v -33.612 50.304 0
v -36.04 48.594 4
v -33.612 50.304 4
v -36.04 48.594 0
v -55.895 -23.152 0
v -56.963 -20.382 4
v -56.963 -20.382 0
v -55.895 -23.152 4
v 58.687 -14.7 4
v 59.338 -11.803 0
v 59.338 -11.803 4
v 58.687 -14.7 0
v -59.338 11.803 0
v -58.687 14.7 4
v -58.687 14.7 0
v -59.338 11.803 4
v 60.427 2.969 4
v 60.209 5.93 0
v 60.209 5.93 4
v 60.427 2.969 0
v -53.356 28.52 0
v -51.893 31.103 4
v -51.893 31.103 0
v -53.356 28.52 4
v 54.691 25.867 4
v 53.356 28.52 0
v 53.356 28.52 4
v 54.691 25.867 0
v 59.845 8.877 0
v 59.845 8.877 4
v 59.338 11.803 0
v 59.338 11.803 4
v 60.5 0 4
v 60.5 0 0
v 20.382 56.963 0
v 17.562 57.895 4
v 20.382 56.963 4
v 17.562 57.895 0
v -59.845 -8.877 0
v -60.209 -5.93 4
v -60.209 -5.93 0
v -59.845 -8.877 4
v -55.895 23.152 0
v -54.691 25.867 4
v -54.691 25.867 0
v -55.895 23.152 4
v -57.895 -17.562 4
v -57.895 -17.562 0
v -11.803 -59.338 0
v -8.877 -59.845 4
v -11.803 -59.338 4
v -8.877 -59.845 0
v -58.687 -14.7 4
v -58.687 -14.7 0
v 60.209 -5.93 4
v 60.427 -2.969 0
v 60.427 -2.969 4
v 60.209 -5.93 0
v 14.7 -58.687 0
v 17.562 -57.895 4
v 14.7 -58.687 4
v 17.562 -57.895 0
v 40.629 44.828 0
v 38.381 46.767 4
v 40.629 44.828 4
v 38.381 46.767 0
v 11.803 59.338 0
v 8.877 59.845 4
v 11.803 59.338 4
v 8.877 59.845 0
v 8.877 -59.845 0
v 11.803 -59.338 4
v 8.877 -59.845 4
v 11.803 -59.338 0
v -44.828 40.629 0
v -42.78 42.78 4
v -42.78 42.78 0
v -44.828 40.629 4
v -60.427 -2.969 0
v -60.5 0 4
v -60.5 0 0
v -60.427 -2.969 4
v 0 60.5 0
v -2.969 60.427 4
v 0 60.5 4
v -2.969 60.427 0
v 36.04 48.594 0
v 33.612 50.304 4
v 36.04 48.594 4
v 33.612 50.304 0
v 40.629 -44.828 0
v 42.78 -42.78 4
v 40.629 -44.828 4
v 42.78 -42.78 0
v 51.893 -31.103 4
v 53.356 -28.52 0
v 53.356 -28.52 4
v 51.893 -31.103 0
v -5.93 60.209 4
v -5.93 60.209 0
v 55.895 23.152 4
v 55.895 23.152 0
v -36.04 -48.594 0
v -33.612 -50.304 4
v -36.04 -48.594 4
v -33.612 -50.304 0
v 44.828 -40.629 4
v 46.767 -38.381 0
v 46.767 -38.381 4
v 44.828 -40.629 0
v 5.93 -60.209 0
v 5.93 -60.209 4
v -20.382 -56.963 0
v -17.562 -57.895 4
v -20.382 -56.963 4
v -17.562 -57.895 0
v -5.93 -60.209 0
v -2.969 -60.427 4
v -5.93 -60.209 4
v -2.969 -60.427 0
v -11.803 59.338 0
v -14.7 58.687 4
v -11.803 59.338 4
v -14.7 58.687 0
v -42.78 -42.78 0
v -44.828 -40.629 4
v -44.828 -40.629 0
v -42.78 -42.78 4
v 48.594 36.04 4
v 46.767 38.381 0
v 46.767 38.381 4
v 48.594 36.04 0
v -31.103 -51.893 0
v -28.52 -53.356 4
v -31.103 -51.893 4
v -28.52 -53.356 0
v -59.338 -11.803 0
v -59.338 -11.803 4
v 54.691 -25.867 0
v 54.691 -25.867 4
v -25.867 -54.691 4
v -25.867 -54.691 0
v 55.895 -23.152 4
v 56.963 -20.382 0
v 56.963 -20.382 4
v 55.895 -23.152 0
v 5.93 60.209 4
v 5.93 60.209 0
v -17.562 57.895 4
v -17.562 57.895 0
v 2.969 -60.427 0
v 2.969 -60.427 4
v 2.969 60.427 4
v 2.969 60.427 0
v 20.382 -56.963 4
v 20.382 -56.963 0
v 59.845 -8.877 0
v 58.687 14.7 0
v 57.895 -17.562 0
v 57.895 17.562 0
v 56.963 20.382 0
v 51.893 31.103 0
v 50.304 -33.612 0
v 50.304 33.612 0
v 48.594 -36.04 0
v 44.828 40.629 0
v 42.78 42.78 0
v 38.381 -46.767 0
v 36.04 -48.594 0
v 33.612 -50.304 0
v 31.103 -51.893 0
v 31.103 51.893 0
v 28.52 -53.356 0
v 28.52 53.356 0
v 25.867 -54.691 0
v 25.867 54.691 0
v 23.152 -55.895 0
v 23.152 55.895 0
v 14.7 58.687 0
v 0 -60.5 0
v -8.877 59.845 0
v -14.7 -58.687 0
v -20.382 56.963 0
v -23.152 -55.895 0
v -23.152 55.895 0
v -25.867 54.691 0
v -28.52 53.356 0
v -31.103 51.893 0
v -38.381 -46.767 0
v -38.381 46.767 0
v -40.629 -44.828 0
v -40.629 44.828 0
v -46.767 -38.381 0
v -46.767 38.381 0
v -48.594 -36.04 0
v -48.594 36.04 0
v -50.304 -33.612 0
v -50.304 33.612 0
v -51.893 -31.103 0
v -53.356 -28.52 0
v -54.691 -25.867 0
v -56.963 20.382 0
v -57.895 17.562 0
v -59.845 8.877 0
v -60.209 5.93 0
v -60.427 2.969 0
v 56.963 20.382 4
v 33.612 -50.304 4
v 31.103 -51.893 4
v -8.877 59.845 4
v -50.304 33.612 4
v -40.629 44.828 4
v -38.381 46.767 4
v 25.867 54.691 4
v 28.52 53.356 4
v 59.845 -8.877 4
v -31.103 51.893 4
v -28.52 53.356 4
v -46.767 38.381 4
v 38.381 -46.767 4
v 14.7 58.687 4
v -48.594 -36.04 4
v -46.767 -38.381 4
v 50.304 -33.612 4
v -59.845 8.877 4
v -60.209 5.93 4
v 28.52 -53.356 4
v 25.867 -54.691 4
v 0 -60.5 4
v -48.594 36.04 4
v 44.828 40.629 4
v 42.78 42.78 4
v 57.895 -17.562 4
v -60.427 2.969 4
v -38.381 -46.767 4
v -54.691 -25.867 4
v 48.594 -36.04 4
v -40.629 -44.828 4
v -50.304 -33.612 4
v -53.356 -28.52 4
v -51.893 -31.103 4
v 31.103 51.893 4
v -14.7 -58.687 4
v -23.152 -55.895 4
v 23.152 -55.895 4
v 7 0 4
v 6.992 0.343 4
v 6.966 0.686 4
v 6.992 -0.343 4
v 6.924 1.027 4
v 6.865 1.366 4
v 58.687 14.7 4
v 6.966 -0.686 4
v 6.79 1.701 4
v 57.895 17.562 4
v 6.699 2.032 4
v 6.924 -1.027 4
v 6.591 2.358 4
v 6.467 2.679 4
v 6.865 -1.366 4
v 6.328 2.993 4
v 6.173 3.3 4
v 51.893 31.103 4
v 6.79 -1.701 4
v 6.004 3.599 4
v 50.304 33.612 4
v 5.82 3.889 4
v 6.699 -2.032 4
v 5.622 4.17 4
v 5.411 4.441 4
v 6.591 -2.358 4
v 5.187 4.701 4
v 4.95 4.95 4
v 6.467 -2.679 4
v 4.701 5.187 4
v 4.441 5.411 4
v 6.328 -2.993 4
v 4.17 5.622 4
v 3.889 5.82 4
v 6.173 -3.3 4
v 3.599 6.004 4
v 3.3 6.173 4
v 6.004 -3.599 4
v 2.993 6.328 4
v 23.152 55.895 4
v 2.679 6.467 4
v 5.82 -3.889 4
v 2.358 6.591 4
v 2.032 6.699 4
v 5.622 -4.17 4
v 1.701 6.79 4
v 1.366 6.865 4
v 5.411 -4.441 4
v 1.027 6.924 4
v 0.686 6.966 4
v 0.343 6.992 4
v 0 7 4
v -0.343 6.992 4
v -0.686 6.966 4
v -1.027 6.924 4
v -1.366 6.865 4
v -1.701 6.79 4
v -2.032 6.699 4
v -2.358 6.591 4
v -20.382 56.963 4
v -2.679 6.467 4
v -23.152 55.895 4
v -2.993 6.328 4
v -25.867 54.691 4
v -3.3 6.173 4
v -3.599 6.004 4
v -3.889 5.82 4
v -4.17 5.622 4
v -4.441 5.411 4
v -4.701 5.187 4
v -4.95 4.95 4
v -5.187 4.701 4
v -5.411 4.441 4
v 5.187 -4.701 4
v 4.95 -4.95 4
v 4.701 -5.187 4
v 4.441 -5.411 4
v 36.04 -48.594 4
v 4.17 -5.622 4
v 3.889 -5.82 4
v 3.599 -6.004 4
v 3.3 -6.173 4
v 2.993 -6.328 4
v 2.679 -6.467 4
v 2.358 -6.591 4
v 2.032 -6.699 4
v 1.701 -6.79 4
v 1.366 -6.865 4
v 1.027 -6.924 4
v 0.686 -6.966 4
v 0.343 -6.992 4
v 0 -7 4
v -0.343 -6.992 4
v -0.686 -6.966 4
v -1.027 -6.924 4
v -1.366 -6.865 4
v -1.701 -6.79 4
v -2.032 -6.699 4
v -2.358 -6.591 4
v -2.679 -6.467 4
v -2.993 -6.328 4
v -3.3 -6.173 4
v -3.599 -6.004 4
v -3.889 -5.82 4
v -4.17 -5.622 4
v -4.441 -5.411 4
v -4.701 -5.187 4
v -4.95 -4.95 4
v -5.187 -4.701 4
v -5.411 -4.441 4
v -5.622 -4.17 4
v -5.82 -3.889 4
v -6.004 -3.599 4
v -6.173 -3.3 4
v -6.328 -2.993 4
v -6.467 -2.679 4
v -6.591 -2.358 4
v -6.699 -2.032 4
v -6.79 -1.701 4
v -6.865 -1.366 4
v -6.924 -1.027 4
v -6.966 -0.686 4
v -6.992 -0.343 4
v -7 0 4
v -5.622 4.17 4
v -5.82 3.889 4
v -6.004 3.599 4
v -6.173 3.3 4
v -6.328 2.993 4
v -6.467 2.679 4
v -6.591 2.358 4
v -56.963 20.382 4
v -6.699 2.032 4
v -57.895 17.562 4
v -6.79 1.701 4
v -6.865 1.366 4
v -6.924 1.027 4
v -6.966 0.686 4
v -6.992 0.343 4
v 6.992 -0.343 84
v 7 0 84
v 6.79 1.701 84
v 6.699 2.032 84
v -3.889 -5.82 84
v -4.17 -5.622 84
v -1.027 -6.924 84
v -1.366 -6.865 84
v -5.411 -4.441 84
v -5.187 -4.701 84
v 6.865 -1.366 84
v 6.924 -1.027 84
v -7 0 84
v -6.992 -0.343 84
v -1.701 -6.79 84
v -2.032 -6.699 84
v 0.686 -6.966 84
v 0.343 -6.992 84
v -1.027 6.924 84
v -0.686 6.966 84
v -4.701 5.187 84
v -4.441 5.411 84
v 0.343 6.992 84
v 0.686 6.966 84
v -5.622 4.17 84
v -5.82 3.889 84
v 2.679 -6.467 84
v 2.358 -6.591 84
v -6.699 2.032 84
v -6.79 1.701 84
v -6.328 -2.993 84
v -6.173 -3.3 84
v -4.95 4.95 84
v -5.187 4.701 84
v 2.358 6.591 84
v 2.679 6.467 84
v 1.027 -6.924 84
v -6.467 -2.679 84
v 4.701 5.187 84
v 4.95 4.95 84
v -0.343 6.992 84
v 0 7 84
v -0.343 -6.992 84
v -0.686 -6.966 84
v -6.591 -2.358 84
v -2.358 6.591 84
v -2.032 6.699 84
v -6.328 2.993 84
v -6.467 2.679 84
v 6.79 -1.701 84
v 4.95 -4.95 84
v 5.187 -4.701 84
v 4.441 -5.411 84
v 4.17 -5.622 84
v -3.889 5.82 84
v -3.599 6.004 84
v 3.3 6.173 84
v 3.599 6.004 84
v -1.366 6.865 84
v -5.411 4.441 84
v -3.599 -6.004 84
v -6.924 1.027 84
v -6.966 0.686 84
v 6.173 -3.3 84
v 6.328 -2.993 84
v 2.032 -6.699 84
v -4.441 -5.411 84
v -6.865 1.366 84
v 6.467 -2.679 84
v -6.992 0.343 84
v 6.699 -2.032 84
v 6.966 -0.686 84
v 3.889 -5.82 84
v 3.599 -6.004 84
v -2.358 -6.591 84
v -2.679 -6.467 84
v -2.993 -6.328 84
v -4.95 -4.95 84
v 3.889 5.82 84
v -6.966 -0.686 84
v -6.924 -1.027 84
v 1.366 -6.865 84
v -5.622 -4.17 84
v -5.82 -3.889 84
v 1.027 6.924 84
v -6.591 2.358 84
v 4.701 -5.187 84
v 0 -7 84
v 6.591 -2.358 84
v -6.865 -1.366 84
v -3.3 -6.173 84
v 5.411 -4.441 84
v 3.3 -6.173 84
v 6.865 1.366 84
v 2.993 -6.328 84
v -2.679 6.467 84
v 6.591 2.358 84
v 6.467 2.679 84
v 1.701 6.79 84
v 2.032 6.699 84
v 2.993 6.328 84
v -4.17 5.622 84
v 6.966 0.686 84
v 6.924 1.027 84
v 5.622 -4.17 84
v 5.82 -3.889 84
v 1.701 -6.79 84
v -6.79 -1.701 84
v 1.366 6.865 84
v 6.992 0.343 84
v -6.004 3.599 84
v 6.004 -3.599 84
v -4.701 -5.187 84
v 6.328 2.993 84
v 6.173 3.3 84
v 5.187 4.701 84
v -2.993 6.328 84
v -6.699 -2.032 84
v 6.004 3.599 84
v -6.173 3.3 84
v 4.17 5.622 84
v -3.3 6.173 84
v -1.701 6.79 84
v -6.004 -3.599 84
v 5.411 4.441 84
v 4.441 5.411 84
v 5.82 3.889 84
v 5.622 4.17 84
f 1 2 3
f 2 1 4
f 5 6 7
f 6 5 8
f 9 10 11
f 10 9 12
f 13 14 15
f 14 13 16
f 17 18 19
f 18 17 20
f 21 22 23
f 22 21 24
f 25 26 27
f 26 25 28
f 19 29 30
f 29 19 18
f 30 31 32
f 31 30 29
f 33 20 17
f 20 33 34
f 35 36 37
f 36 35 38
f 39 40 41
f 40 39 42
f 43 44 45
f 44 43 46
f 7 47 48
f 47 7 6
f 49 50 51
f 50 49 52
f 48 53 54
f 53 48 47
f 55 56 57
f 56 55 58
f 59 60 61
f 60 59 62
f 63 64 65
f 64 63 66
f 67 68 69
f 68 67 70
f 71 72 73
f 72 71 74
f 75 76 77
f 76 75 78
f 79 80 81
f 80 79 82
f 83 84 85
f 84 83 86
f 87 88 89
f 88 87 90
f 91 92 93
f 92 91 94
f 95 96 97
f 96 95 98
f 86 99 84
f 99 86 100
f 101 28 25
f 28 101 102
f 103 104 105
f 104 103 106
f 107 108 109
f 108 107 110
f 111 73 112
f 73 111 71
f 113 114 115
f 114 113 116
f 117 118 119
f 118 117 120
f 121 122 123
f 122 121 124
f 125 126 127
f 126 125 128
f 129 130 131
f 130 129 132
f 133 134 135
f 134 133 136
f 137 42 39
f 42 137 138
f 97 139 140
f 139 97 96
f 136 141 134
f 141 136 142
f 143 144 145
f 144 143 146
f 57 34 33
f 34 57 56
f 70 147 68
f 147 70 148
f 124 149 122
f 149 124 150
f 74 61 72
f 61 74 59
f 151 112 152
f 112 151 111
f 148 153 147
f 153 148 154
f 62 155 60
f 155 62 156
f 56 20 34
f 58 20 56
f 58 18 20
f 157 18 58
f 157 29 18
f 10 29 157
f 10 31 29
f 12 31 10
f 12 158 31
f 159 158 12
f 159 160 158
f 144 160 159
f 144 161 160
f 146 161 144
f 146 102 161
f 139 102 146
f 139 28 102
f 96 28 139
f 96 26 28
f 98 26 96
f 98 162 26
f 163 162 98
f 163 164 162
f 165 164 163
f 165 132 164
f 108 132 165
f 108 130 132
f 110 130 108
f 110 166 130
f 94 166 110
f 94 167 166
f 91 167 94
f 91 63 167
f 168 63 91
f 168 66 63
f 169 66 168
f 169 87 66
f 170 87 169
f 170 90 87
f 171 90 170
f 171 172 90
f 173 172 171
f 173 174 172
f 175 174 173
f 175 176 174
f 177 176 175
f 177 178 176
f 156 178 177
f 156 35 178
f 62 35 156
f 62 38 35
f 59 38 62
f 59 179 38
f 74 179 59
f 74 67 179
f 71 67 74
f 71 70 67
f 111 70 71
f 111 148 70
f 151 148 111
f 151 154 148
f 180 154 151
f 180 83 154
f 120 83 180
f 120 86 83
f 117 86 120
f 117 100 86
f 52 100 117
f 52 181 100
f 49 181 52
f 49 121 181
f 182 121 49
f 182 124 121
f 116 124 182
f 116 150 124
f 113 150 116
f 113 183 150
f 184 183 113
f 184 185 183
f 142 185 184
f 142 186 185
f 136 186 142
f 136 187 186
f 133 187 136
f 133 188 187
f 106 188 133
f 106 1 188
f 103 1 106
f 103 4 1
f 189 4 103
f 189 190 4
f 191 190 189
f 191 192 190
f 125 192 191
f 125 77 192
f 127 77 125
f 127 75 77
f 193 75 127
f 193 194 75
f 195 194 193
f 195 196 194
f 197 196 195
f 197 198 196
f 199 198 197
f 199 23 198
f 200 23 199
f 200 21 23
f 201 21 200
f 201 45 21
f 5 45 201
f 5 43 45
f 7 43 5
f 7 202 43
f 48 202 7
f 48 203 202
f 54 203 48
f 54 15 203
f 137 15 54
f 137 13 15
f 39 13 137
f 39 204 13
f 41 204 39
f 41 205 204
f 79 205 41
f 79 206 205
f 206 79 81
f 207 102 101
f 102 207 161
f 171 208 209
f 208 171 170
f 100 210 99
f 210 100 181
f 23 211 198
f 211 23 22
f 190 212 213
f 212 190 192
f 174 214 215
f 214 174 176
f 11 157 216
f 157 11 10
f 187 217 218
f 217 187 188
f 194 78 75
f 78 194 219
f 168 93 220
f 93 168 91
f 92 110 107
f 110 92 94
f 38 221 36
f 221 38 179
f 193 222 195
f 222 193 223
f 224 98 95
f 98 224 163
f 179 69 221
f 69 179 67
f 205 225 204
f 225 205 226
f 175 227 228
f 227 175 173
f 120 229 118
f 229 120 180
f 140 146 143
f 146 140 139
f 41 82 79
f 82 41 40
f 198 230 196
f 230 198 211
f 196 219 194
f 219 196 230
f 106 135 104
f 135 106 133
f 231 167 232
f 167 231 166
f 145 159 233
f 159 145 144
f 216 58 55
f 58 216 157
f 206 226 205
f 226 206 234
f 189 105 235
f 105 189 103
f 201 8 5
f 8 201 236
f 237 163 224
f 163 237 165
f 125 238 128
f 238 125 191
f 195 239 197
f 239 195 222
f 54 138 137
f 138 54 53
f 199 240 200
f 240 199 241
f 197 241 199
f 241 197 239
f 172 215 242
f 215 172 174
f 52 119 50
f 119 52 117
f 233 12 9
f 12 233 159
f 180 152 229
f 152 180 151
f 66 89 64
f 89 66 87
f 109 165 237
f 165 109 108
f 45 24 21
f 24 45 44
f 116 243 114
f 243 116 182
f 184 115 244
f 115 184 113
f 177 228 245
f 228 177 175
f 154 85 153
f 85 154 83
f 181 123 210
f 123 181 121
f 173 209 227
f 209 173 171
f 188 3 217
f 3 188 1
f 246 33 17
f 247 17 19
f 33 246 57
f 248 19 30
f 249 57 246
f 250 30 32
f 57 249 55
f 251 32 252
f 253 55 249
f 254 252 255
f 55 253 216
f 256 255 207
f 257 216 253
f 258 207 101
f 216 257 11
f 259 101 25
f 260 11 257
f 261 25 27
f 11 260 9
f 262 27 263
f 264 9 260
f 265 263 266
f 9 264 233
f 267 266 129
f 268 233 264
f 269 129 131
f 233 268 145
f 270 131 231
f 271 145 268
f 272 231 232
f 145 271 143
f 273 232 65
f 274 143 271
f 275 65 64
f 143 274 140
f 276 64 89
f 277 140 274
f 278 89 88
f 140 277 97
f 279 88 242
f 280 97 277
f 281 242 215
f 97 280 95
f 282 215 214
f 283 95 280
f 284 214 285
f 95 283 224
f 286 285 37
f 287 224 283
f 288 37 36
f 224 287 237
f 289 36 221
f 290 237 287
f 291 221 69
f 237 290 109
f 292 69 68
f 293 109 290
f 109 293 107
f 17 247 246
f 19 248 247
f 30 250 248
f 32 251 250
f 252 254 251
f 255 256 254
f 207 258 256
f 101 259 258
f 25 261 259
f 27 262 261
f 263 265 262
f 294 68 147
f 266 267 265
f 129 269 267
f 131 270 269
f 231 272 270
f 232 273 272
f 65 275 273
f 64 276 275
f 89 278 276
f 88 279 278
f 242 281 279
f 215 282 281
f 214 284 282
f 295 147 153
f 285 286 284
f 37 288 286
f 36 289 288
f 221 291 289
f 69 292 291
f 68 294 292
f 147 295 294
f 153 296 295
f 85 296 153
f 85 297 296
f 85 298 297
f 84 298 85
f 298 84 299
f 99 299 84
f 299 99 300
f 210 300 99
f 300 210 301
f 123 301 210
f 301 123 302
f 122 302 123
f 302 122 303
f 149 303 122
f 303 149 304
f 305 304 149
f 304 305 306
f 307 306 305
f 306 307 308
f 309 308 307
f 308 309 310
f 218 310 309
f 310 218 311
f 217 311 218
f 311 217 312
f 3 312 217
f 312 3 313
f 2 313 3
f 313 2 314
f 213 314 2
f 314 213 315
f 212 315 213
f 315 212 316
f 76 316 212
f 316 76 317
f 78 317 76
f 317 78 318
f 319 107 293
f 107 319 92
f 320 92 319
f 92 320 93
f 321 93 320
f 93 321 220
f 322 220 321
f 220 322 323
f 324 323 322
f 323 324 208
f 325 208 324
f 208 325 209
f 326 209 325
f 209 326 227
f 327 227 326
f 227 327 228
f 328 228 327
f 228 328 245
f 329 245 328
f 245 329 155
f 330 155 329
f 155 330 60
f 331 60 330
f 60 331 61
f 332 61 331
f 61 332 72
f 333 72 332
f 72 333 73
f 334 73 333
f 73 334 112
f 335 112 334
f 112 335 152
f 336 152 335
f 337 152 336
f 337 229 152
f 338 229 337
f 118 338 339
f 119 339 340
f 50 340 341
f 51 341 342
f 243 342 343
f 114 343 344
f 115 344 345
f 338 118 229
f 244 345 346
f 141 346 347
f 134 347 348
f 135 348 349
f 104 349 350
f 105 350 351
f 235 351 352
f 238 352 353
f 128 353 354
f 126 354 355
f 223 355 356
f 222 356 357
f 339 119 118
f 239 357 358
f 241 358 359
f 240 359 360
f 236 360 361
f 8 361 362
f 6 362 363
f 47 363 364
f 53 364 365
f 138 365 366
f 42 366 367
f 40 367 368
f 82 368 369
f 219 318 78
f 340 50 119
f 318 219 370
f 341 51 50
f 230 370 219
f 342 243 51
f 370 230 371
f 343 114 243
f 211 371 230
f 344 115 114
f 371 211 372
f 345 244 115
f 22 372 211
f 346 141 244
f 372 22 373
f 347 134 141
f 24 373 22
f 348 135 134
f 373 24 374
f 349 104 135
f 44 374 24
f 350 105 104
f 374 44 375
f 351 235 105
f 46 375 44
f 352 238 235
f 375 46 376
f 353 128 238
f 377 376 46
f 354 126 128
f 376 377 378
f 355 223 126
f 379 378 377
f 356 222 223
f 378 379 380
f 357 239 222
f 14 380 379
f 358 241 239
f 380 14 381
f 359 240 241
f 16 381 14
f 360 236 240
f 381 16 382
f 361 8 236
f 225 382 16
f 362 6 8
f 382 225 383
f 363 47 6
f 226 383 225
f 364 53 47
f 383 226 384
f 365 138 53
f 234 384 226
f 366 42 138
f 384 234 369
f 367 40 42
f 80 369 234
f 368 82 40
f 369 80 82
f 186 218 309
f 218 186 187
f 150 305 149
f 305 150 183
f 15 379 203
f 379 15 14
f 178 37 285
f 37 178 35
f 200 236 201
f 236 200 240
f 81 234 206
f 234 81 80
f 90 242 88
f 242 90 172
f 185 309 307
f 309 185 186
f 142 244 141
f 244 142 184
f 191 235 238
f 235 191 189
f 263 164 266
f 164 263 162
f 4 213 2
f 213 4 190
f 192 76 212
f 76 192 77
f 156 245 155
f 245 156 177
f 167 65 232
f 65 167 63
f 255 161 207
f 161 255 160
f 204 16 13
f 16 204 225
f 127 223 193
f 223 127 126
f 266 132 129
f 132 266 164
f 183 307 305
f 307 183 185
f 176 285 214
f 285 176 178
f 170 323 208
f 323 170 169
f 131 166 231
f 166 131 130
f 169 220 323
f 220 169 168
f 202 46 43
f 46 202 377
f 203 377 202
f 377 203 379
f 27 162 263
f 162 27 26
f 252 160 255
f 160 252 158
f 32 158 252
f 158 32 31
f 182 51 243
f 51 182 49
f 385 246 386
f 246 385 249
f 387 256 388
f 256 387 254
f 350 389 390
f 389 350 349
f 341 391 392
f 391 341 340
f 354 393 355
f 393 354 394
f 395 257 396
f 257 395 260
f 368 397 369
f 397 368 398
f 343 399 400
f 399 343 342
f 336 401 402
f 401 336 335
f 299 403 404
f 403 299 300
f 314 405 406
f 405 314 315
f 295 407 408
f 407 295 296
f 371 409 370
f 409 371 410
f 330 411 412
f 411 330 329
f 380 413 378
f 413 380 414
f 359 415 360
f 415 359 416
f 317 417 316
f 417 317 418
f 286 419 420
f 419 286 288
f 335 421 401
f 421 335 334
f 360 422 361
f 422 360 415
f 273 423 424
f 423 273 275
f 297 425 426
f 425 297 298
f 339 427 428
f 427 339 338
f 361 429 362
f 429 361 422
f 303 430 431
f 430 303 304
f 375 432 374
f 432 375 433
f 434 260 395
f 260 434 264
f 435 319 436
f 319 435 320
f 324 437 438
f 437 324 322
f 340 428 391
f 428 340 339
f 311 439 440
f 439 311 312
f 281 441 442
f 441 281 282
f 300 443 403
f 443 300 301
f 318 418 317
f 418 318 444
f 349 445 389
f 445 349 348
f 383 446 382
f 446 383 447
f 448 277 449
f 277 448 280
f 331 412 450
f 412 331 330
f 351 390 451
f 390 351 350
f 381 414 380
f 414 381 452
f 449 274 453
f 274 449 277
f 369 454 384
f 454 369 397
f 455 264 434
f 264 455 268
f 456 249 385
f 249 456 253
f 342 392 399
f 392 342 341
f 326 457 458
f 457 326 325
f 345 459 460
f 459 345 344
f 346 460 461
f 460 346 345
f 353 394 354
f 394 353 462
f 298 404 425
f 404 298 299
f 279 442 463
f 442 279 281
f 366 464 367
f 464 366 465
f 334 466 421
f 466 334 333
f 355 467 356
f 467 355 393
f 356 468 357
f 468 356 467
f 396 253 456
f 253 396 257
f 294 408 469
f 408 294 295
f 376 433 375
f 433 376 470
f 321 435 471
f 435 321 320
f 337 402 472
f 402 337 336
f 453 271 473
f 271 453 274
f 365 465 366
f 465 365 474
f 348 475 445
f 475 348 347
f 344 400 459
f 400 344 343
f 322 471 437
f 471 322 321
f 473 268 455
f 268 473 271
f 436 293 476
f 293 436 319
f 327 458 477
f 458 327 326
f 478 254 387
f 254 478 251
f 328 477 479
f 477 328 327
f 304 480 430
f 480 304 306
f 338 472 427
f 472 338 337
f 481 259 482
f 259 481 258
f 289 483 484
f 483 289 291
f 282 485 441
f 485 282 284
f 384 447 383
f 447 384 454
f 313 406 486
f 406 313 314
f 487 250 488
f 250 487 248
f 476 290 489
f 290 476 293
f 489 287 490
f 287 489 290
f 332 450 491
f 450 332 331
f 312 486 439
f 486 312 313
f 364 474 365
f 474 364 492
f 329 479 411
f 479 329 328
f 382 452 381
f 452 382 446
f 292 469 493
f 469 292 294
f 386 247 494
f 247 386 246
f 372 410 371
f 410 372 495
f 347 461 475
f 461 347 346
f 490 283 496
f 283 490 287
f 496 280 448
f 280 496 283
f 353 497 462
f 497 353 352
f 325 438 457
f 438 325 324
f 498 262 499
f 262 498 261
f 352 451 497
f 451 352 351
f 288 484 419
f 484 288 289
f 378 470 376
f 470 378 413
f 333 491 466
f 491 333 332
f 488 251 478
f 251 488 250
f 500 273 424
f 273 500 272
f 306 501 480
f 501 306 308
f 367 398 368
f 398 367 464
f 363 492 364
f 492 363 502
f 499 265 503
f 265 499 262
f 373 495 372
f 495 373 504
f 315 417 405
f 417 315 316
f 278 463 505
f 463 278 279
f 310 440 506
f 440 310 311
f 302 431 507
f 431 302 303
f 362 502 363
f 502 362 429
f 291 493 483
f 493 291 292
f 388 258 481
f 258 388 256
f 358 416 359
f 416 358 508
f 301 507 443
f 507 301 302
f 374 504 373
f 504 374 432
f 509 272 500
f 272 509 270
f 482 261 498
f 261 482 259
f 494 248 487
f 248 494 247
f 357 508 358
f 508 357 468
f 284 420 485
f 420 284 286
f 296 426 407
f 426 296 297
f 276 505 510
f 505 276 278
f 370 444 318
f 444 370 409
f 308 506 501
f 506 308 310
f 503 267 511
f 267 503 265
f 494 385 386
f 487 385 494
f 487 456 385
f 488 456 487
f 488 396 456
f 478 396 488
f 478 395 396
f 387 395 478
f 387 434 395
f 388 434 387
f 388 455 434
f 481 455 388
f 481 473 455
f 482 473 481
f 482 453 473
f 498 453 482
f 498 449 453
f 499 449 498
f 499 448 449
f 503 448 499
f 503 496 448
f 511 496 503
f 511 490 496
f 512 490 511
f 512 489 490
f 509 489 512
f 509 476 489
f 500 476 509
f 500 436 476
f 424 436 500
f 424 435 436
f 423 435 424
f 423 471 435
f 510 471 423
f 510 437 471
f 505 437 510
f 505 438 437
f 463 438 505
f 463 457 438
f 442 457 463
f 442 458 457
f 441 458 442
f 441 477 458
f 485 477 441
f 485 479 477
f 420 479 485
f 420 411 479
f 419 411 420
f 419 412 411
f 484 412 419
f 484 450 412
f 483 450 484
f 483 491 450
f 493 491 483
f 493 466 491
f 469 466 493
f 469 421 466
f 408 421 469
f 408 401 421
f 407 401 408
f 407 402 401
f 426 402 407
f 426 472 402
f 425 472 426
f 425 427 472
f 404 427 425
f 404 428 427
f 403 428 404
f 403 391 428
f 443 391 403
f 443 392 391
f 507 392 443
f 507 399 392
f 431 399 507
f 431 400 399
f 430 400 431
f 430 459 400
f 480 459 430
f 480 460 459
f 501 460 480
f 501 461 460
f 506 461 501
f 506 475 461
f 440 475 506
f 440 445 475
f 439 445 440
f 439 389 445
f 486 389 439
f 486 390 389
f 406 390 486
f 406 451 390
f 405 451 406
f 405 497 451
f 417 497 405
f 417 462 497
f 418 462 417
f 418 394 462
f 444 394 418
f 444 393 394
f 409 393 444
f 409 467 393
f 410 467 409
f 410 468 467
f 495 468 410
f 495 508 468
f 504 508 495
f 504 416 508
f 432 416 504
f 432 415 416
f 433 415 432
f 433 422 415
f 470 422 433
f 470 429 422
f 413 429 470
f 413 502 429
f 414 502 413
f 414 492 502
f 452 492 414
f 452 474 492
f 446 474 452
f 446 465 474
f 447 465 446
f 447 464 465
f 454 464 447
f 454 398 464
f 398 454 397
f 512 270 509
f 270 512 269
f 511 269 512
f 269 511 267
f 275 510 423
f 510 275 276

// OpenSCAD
$fn = 128;

optical_disc_size = 120.00;
optical_disc_hole = 15.0;

tolerance = 0.50;
base_h = 4.00;
h = 80;

linear_extrude(base_h)
    circle(optical_disc_size / 2  + tolerance);

linear_extrude(base_h + h)
    circle(optical_disc_hole / 2  - tolerance);
